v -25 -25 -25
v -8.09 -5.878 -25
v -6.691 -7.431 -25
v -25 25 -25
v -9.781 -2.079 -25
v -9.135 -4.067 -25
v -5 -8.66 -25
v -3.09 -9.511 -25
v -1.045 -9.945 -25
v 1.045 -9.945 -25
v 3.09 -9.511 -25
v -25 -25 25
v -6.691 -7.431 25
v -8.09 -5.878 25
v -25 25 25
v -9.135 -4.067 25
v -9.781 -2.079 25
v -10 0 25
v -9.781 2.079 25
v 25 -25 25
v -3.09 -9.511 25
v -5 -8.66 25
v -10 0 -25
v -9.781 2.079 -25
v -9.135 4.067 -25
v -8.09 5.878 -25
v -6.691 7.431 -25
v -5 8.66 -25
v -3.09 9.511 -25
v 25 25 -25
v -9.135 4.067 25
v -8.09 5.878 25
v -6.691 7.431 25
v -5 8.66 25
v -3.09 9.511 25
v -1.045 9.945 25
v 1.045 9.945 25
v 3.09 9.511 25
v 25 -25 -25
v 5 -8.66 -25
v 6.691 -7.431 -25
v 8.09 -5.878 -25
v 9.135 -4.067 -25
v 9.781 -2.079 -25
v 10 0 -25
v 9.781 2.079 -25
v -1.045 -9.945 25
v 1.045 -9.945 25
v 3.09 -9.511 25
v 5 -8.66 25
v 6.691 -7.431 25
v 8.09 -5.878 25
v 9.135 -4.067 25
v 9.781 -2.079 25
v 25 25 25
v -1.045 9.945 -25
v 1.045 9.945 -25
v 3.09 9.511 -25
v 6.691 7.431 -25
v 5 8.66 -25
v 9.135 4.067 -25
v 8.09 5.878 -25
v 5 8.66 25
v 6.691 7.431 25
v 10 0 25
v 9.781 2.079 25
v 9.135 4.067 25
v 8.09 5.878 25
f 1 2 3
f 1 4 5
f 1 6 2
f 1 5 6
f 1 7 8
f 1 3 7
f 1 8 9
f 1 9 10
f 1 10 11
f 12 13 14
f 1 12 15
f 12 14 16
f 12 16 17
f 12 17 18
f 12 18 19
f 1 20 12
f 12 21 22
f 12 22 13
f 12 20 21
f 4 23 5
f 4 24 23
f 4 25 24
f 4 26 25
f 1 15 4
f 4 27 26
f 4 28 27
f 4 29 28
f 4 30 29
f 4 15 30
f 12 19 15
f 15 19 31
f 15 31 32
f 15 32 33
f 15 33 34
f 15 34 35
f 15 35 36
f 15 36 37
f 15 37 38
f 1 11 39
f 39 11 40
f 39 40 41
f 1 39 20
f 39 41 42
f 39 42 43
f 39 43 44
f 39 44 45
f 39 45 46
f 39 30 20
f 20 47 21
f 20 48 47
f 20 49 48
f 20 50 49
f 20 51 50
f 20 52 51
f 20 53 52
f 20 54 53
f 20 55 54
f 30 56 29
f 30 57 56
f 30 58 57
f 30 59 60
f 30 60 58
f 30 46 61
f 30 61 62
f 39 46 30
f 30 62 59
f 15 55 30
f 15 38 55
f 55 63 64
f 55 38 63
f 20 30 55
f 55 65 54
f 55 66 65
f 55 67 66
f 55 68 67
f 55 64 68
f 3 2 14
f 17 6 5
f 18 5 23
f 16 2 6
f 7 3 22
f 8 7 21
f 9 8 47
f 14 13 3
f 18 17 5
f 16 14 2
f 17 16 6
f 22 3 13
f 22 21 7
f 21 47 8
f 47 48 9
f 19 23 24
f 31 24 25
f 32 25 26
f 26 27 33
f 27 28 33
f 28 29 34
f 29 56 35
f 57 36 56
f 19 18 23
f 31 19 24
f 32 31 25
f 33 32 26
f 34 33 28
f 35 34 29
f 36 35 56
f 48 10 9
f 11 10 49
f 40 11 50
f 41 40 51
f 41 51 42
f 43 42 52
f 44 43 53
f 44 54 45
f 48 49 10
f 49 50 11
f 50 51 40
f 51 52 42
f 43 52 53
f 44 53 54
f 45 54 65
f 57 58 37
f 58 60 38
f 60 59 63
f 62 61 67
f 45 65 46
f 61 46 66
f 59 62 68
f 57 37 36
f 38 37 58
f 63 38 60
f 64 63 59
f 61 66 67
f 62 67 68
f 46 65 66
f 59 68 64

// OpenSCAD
difference() {
    cube([50, 50, 50], true);
    cylinder(r = 10, h = 50, center = true);
}
